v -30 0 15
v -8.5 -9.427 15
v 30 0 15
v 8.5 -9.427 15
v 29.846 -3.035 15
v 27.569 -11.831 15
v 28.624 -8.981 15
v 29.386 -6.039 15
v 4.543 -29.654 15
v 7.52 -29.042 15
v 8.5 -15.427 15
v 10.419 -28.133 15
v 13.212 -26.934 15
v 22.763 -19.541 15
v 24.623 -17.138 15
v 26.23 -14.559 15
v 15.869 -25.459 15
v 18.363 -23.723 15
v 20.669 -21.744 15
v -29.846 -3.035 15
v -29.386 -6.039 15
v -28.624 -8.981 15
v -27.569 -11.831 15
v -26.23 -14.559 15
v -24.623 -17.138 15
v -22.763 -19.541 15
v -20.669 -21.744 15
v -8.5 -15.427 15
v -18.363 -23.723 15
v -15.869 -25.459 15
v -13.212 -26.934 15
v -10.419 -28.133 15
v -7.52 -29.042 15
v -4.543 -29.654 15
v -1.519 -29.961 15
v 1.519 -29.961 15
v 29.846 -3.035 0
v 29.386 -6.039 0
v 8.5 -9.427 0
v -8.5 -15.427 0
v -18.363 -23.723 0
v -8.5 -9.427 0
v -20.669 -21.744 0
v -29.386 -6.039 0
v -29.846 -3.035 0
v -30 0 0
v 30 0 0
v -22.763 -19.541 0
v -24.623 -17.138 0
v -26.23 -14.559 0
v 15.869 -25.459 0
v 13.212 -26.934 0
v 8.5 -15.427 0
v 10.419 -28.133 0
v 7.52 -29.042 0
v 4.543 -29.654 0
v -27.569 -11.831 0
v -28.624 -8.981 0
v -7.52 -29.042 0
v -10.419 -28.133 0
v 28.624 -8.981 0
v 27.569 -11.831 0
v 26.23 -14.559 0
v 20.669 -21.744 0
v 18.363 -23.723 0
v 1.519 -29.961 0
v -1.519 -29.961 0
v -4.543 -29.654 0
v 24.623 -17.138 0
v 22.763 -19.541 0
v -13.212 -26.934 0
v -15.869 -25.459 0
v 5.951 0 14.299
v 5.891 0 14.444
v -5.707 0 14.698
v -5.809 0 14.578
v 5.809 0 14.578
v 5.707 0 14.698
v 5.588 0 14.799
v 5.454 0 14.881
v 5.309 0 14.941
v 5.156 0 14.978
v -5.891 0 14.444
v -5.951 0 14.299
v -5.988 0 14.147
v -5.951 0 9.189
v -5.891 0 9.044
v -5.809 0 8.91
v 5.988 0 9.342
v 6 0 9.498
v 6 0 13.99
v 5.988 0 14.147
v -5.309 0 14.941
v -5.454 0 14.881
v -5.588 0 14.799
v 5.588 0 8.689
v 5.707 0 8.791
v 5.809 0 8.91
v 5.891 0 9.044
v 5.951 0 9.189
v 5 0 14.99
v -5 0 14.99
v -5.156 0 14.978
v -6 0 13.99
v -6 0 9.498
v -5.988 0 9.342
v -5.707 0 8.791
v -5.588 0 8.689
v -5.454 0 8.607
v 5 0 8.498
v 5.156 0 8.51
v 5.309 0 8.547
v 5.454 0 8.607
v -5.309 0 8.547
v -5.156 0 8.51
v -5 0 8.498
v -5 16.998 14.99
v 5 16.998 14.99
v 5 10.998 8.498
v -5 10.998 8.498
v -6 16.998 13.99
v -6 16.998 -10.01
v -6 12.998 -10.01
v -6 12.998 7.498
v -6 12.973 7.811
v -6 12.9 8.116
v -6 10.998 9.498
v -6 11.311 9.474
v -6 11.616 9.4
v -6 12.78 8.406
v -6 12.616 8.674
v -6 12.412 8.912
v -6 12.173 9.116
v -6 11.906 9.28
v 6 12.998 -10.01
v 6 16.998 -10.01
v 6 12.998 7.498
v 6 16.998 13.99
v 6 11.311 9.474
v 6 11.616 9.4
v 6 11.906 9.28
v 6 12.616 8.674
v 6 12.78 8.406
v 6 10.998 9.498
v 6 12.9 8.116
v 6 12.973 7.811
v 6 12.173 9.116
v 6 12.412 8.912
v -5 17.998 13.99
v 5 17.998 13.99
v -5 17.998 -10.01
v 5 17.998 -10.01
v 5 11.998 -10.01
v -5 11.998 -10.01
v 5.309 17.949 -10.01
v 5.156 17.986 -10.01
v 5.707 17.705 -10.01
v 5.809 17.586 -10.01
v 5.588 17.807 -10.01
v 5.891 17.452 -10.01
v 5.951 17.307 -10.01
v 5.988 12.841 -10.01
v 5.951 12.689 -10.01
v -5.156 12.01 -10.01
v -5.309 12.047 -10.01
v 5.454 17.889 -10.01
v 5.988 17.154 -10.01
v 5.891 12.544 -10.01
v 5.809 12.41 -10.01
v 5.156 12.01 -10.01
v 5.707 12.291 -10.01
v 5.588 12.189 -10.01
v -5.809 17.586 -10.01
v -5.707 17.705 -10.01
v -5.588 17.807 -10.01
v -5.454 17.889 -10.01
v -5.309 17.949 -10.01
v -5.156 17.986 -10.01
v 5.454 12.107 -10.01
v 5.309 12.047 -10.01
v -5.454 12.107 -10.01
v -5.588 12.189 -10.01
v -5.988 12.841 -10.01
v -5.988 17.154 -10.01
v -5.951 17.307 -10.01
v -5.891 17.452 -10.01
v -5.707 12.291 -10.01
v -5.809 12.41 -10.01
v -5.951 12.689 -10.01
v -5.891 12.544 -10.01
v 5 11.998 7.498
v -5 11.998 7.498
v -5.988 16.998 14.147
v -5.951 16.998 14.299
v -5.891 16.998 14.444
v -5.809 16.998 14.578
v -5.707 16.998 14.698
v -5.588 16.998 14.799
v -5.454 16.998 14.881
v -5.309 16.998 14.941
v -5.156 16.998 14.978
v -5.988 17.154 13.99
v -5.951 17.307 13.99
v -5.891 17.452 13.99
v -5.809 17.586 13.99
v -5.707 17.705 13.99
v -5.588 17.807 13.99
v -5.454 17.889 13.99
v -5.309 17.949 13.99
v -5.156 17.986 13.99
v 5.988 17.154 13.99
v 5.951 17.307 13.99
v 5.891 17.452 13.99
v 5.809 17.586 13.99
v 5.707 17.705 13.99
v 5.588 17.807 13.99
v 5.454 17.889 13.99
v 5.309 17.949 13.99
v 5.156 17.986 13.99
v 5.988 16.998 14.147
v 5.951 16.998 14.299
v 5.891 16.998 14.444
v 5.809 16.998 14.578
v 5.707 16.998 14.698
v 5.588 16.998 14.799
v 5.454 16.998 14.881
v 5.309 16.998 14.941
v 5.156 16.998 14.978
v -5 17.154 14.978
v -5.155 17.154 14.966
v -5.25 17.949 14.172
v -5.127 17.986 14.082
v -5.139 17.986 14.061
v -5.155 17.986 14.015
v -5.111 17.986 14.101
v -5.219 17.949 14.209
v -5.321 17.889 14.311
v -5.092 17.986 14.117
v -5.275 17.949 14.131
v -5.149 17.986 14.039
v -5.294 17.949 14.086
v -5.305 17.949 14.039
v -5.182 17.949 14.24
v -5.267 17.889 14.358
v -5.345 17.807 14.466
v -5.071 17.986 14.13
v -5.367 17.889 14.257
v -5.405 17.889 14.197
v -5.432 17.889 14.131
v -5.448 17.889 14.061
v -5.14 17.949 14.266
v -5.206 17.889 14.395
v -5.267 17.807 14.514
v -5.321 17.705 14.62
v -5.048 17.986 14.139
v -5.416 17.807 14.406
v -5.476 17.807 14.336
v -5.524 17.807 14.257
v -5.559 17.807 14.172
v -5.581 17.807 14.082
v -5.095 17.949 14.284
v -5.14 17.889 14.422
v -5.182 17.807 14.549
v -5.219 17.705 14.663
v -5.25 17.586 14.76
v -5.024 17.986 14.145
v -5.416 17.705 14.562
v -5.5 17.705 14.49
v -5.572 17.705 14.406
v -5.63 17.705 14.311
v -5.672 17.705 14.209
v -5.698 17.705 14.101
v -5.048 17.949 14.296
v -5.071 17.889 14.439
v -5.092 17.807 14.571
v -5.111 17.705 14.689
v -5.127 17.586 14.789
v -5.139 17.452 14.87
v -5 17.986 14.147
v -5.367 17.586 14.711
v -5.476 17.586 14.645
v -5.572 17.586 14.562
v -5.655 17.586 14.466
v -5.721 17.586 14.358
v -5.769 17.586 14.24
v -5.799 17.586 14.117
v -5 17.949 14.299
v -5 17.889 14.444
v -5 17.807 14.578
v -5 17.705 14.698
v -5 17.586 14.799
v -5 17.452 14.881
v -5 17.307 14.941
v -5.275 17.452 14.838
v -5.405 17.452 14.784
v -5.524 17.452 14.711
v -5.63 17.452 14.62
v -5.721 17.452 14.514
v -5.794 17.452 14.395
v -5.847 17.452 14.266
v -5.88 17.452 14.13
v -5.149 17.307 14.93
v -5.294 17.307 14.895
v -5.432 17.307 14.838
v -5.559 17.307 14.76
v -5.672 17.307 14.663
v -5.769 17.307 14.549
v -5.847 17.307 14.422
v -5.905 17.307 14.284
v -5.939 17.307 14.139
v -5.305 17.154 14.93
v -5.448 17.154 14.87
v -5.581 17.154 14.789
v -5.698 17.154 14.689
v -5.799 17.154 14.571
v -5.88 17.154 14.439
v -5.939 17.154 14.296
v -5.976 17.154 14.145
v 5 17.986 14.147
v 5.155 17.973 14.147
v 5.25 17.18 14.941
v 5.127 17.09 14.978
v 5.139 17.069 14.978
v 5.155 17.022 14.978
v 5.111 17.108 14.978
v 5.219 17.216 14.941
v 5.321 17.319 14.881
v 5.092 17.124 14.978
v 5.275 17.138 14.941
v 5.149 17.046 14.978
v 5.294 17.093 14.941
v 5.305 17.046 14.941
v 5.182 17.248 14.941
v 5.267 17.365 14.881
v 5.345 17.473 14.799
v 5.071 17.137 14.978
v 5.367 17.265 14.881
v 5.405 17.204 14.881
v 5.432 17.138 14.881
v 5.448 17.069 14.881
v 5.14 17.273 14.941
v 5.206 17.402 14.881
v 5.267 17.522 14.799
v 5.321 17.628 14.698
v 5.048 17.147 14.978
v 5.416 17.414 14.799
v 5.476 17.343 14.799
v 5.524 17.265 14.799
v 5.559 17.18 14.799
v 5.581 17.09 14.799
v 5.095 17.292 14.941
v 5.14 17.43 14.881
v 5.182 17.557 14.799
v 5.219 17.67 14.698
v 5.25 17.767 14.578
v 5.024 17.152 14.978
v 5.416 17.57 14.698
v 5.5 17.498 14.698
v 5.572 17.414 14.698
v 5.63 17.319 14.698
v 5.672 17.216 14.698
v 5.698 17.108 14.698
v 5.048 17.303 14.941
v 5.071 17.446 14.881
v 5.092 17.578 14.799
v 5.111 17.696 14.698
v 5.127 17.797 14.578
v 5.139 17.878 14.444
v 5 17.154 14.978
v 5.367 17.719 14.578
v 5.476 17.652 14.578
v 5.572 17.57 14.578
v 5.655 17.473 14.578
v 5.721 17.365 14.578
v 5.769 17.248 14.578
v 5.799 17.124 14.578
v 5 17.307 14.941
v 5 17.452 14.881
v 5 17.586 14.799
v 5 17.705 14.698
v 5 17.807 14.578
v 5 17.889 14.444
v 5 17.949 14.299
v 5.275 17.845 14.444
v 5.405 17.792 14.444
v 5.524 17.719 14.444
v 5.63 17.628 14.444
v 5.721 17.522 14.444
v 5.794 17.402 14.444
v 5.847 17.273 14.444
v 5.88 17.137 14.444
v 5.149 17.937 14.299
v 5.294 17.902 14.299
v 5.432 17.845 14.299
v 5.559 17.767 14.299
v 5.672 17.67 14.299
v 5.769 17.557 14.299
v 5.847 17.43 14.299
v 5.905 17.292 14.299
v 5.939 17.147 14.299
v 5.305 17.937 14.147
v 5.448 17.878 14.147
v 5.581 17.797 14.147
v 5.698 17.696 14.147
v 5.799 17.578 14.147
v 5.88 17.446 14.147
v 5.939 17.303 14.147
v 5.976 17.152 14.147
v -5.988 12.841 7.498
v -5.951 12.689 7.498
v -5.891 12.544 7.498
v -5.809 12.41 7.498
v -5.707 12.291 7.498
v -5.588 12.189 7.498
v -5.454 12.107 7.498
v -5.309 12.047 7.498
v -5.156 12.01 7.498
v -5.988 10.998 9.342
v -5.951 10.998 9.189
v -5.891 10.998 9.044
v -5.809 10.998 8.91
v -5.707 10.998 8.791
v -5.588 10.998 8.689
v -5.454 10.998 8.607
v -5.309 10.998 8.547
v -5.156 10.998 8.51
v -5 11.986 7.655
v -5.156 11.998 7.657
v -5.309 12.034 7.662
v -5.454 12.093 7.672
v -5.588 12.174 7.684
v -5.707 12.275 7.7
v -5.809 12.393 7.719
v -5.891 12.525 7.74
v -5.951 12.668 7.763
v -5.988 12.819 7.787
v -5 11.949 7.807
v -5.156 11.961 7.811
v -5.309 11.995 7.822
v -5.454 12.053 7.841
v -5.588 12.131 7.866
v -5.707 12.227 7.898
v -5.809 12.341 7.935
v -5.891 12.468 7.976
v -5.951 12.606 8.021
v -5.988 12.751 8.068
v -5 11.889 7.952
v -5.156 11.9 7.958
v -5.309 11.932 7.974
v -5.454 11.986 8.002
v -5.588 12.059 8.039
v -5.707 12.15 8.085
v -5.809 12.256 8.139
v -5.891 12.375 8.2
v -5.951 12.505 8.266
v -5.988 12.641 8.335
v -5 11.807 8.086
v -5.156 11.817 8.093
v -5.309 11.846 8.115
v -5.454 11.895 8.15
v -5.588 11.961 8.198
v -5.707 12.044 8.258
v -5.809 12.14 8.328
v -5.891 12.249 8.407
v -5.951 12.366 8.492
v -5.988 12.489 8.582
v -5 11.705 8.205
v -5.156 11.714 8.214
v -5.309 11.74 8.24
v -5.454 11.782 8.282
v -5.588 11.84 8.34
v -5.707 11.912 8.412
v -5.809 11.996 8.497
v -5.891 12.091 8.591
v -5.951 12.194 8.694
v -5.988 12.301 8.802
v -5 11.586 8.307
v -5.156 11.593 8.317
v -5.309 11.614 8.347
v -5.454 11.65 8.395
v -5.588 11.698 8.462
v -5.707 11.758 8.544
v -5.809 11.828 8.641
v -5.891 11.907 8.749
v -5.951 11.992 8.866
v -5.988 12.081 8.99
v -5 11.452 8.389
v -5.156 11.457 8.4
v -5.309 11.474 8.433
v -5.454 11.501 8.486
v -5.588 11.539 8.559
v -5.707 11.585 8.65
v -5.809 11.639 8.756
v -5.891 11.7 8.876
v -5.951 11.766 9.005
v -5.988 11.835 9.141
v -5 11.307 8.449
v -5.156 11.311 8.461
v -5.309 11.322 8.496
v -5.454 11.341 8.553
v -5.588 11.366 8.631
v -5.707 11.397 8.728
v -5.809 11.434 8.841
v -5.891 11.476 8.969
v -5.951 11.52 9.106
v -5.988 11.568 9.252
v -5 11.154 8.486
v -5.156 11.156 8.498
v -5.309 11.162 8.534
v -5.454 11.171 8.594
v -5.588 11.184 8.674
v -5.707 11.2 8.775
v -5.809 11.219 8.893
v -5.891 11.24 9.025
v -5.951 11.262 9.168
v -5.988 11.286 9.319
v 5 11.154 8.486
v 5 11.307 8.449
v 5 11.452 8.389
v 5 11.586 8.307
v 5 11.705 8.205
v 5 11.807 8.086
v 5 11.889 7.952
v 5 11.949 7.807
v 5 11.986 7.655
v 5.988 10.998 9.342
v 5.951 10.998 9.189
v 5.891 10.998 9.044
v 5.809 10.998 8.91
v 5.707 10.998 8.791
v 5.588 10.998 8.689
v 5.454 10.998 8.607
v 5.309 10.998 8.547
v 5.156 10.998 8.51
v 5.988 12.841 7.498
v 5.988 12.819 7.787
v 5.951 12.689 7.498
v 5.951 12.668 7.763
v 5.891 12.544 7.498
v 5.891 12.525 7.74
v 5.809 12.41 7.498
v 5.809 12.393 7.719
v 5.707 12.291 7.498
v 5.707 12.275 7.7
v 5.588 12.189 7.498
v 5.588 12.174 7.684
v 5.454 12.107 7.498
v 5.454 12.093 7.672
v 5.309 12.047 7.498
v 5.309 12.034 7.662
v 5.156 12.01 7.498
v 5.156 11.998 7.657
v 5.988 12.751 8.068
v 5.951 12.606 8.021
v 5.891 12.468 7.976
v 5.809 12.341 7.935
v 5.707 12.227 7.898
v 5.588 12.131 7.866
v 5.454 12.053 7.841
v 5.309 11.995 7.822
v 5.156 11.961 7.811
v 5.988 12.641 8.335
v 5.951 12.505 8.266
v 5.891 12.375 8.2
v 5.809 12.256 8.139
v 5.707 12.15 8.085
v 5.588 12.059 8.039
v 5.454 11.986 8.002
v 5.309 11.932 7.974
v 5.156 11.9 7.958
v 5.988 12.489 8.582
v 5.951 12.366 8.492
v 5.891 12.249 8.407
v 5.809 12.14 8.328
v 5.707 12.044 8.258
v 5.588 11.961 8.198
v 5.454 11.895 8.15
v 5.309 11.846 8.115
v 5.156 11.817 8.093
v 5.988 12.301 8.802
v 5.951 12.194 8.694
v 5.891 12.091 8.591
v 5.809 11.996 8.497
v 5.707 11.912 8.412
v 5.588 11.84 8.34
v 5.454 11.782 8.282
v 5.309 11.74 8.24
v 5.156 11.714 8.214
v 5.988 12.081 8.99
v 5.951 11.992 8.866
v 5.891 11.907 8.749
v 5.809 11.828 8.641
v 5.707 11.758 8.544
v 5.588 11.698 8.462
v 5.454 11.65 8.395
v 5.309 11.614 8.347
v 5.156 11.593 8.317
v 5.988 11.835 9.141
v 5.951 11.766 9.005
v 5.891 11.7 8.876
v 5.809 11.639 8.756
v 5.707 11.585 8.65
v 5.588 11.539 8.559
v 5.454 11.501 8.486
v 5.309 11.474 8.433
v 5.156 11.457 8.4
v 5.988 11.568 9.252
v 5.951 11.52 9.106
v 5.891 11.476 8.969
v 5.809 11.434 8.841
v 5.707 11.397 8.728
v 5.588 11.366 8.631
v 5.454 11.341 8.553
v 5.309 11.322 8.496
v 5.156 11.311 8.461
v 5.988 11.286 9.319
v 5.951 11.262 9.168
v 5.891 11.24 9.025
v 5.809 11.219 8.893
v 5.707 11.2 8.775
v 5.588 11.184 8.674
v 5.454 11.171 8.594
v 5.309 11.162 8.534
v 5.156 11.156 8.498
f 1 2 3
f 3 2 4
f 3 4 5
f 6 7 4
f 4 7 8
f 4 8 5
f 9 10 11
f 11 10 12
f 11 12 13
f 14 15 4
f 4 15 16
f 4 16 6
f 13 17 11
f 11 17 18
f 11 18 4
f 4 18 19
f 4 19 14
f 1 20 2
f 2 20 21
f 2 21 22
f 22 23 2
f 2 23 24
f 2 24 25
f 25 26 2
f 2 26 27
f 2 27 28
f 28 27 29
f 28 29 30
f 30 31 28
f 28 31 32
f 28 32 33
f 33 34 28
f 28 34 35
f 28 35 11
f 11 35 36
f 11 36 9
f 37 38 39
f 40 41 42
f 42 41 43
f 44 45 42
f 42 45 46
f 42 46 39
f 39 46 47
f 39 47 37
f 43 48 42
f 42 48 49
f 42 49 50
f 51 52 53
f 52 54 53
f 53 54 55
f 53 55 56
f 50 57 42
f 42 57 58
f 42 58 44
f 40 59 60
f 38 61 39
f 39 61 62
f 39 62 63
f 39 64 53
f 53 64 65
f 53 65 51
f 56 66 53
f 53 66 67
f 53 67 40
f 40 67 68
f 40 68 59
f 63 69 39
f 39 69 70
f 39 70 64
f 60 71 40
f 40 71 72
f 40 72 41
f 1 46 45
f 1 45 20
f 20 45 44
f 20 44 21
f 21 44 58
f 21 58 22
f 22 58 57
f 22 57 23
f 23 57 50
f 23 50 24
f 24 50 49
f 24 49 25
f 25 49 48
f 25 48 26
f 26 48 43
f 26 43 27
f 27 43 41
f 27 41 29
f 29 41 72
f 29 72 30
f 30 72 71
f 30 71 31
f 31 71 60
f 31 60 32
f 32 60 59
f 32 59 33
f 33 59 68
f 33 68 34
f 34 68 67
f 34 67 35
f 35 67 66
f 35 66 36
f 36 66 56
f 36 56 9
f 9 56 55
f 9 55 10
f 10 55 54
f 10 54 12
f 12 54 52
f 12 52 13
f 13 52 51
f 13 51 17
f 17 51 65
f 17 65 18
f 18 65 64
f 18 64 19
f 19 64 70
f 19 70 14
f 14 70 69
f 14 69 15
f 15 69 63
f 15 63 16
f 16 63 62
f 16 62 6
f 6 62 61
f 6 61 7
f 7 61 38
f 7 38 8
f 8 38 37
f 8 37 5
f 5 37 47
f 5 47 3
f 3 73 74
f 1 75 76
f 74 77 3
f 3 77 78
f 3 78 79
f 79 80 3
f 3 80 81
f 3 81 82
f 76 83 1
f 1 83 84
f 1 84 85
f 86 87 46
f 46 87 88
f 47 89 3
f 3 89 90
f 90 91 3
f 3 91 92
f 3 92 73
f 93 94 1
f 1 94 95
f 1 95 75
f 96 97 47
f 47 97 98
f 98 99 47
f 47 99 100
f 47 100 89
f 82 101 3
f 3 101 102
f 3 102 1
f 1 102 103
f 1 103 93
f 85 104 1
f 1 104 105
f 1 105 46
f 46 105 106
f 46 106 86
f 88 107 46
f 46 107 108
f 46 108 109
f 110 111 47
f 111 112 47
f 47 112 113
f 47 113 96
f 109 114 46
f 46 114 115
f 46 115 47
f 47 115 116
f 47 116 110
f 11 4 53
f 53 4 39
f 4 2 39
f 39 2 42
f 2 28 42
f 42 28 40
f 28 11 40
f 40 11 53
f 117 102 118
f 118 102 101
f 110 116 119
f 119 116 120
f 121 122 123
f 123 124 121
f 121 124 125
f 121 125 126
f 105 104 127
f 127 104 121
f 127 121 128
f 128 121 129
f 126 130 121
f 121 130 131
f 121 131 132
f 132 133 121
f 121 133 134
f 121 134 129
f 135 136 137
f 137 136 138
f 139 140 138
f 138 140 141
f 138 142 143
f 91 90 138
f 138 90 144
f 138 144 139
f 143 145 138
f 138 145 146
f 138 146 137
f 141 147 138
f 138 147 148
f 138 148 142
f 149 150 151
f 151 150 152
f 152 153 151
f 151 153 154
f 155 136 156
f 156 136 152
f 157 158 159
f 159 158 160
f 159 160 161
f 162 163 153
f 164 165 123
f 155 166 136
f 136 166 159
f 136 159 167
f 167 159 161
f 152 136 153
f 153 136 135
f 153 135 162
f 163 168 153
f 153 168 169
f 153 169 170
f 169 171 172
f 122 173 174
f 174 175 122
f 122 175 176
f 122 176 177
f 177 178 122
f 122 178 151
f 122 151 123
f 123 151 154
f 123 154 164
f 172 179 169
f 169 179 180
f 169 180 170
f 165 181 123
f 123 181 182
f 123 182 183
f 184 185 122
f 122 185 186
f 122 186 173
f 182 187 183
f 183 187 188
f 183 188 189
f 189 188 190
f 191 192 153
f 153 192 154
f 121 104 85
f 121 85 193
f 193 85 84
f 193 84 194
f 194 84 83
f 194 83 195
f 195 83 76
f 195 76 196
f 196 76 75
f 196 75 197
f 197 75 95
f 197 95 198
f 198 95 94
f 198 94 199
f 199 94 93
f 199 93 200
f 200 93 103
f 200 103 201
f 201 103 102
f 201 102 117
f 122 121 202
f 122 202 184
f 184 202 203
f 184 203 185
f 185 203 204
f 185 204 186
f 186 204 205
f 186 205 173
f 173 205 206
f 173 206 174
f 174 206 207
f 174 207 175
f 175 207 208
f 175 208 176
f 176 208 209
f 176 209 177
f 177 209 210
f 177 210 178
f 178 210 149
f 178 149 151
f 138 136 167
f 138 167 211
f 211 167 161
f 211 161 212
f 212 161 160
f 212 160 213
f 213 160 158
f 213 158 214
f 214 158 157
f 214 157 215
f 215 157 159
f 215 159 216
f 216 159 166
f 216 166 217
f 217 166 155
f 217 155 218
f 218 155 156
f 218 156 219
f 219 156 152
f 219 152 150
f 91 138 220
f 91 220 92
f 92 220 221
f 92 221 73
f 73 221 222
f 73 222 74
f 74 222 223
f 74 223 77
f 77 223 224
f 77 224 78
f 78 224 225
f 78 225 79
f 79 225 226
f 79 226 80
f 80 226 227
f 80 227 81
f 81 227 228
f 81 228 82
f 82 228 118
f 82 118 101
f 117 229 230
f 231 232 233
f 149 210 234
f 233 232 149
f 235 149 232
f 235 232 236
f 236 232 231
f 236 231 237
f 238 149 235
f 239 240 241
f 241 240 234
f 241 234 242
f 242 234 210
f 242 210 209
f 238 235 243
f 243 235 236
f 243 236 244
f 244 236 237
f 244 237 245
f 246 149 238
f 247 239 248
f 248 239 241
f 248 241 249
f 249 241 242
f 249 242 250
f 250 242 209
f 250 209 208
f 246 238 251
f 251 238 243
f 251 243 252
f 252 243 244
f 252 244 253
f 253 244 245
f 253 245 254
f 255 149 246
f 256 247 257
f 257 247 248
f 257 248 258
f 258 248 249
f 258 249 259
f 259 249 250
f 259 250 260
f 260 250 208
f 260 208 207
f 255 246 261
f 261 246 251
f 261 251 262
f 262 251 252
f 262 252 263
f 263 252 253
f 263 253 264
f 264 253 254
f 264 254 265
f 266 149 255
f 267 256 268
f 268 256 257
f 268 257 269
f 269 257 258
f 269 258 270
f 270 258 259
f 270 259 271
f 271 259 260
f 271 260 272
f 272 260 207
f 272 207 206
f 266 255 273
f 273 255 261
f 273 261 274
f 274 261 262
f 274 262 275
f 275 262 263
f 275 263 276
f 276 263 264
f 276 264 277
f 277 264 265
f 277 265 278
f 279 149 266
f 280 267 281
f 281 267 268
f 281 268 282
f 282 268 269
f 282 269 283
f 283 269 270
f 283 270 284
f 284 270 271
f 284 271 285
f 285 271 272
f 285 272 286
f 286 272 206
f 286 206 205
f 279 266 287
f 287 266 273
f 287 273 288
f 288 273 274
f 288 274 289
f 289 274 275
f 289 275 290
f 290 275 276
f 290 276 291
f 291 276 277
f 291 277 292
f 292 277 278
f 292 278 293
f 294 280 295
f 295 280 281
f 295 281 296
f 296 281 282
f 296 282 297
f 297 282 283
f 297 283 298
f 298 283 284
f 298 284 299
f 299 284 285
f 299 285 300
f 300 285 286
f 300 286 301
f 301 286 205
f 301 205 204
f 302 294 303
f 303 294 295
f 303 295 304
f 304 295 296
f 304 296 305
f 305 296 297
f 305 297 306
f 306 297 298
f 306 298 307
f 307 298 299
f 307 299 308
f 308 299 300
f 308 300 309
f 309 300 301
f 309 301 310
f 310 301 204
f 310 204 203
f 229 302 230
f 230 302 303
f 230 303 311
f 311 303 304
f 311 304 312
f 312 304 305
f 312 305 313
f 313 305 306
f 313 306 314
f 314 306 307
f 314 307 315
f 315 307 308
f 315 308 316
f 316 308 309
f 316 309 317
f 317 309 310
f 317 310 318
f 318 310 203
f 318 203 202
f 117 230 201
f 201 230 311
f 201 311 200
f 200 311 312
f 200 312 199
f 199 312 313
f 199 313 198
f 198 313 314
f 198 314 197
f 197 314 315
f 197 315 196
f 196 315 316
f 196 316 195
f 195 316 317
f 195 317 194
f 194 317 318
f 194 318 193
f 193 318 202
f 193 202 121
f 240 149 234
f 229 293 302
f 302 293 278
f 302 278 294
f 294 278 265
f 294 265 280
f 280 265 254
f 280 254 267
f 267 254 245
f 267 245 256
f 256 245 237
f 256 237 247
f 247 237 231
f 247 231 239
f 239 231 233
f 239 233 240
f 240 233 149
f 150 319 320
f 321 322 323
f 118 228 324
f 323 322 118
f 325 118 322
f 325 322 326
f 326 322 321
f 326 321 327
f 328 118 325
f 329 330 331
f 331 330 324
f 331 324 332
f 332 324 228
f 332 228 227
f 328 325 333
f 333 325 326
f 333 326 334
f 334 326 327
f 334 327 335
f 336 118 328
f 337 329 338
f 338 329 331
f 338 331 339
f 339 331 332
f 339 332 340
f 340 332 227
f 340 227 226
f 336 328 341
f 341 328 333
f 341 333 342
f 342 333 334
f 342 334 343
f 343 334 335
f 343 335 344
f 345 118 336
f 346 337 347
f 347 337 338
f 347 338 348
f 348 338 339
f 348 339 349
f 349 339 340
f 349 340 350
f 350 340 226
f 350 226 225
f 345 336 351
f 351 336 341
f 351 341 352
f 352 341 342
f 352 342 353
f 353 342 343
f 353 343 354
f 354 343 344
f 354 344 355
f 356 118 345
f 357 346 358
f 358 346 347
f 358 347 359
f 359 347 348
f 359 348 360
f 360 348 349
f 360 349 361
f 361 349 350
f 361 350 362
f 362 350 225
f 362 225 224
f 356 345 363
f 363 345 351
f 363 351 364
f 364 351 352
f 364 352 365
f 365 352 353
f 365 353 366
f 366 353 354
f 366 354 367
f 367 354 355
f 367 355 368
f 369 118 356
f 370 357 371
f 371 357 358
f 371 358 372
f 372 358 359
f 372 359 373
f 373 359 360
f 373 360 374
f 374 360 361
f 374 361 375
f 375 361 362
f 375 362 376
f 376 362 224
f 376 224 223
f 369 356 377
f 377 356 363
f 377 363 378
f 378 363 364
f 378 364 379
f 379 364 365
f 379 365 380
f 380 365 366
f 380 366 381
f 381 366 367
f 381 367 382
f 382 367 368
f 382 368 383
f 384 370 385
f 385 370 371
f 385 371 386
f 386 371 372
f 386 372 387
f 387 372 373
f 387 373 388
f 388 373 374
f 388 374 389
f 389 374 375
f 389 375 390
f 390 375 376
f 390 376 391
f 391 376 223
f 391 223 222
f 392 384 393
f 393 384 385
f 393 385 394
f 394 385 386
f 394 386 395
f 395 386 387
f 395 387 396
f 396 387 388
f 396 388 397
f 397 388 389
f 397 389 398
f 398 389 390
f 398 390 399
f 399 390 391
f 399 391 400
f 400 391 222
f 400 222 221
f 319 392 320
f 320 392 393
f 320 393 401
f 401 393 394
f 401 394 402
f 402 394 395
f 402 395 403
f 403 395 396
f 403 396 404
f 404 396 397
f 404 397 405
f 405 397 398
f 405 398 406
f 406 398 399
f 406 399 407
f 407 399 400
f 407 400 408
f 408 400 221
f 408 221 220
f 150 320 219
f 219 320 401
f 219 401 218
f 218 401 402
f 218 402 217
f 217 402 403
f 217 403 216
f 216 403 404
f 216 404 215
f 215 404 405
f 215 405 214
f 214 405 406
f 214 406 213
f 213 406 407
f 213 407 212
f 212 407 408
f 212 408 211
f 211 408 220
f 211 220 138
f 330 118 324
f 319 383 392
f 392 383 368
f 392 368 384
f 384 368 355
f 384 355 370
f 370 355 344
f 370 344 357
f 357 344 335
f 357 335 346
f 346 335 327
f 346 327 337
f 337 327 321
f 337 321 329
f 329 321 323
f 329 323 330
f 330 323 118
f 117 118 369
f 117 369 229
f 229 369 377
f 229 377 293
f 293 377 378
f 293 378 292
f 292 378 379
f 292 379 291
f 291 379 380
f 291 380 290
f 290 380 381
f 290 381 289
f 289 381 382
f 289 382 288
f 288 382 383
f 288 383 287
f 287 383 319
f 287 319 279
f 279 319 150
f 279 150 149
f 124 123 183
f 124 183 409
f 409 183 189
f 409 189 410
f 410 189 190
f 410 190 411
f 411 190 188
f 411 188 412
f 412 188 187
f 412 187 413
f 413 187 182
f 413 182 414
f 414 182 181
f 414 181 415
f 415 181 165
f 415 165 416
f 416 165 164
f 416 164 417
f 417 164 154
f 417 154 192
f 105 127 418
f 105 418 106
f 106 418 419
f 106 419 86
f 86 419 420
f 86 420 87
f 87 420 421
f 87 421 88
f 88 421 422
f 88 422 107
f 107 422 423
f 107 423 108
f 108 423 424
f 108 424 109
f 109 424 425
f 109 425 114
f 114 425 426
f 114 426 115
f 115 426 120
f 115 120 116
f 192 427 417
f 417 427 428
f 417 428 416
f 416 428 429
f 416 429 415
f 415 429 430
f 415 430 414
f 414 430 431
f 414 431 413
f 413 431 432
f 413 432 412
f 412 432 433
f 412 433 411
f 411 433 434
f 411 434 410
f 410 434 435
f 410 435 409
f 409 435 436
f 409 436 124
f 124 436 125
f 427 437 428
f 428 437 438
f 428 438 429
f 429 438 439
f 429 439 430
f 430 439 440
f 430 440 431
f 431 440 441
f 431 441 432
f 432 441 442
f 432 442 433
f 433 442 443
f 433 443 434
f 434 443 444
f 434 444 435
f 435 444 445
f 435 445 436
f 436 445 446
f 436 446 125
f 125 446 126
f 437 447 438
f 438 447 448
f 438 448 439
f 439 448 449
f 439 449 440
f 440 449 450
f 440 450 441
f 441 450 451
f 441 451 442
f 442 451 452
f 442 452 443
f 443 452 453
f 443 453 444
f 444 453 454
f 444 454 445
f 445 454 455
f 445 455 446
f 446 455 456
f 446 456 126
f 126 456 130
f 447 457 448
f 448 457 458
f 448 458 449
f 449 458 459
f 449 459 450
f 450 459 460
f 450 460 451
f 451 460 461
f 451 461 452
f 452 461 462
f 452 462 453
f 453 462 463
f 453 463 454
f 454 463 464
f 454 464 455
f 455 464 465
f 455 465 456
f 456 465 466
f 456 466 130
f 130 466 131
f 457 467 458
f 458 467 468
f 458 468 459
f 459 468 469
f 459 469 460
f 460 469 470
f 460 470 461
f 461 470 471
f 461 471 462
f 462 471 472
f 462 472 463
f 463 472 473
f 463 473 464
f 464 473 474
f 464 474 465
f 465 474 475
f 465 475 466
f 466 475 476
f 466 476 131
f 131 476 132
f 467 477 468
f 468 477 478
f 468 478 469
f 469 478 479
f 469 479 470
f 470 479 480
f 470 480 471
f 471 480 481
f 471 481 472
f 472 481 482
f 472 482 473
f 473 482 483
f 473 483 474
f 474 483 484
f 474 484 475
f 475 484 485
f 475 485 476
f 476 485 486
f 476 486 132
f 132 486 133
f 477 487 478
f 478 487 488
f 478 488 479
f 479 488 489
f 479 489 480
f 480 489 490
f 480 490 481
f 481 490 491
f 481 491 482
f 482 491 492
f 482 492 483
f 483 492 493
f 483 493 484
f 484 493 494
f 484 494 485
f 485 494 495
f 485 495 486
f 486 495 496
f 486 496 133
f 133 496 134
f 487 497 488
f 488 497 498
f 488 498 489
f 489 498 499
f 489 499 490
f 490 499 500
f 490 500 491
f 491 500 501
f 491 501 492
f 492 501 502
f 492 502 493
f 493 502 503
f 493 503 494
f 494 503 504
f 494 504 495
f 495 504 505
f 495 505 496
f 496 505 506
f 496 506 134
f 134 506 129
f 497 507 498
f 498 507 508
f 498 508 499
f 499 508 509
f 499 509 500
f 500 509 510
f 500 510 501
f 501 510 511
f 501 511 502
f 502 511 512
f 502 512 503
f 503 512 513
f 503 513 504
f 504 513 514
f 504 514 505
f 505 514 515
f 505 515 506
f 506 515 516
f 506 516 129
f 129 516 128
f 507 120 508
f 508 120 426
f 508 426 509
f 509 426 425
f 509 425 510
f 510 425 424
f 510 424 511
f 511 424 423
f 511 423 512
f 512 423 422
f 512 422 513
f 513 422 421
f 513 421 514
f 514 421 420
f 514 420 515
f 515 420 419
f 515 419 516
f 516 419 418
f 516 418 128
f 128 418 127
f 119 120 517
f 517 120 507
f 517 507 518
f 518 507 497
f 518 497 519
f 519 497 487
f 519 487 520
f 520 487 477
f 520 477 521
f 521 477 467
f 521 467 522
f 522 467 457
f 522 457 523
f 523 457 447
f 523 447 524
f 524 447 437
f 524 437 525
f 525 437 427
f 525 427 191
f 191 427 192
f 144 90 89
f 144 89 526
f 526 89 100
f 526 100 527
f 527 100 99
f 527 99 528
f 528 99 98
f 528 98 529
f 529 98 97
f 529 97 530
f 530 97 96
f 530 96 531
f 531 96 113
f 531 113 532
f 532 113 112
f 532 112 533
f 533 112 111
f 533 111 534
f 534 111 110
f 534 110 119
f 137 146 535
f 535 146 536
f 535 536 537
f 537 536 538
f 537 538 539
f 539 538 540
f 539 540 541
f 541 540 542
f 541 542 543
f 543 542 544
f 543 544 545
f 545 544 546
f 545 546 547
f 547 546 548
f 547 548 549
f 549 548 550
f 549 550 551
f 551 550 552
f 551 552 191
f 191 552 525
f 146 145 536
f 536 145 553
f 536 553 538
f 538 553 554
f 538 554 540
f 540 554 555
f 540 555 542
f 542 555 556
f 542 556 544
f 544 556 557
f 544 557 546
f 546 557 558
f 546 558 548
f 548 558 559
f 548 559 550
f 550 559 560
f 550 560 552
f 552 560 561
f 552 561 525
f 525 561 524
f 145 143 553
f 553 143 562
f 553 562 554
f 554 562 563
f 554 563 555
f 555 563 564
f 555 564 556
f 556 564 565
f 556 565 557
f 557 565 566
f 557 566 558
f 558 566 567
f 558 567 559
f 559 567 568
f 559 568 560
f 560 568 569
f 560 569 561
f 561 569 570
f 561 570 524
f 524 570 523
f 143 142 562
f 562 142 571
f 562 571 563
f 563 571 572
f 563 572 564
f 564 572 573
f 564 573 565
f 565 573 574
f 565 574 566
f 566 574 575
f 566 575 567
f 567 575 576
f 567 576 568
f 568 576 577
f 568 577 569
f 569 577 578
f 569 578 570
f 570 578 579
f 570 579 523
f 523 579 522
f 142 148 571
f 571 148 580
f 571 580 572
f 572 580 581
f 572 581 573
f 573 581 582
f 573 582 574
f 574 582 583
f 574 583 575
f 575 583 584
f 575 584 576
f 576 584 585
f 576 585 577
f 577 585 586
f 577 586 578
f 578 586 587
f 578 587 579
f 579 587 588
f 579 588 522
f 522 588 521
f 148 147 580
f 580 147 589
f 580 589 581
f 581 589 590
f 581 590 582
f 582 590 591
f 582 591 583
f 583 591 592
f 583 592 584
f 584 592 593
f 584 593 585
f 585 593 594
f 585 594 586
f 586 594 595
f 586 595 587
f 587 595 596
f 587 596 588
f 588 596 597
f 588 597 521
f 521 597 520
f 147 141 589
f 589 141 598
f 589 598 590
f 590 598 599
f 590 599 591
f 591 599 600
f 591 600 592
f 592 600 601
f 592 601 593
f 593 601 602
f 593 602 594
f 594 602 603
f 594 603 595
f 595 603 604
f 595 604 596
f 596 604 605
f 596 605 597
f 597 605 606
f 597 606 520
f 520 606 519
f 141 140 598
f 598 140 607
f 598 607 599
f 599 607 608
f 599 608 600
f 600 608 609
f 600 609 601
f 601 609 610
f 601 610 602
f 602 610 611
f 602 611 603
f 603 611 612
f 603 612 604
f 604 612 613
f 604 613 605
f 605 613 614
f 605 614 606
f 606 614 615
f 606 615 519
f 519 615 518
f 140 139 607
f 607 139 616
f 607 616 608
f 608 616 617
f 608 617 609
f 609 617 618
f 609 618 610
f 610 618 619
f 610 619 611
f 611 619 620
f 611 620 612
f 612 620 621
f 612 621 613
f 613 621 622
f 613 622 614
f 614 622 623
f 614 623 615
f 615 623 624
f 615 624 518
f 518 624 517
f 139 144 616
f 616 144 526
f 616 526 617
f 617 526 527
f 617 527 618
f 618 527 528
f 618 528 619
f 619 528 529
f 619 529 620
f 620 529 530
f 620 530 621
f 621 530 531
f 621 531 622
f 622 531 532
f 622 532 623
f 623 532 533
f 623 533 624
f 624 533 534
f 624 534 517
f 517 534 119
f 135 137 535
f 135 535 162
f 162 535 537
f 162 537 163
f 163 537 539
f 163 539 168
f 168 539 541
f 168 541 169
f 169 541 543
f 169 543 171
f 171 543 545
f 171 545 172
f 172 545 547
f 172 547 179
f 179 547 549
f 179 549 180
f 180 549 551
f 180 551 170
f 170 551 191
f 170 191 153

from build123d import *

# Parameters (mm, degrees)
SKETCH_1_W           = 17
SKETCH_1_H           = 6
EXTRUDE_1_DEPTH      = 15
EXTRUDE_2_DEPTH      = 6
EXTRUDE_2_DEPTH_BACK = 6
FILLET_4_R           = 1
FILLET_5_R           = 1
FILLET_6_R           = 1


with BuildPart() as part:
    # Эскиз1 → Бобышка-Вытянуть1 (new body)
    with BuildSketch(Plane.XY):
        with BuildLine():
            Line((30, 0), (-30, 0))
            ThreePointArc((-30, 0), (0, -30), (30, 0))
        make_face()
        with Locations((0, -12.426630435)):
            Rectangle(SKETCH_1_W, SKETCH_1_H, mode=Mode.SUBTRACT)
    extrude(amount=EXTRUDE_1_DEPTH)

    # Эскиз6 → Бобышка-Вытянуть2 (add, two sides: drawn at the far end of the back side and taken through both)
    with BuildSketch(Plane(origin=(0, 0, 0), x_dir=(0, 0, -1), z_dir=(1, 0, 0)).offset(-EXTRUDE_2_DEPTH_BACK)):
        Polygon((-14.990436671, -0.00212283), (-14.990436671, 17.99787717), (10.009563329, 17.99787717), (10.009563329, 11.99787717), (-8.498173606, 11.99787717), (-8.498173606, -0.00212283), align=None)
    extrude(amount=EXTRUDE_2_DEPTH + EXTRUDE_2_DEPTH_BACK)

    # Скругление4
    fillet_4_edges = [part.edges().sort_by_distance(p)[0] for p in [
        (-6, 8.998938585, 14.990436671),
    ]]
    fillet(fillet_4_edges, radius=FILLET_4_R)

    # Скругление5
    fillet_5_edges = [part.edges().sort_by_distance(p)[0] for p in [
        (6, 8.998938585, 14.990436671),
        (6, 17.99787717, 2.490436671),
        (-6, 17.99787717, 1.990436671),
        (0.5, 17.99787717, 14.990436671),
        (-5.707106781, 17.99787717, 14.697543453),
    ]]
    fillet(fillet_5_edges, radius=FILLET_5_R)

    # Скругление6
    fillet_6_edges = [part.edges().sort_by_distance(p)[0] for p in [
        (-6, 5.998938585, 8.498173606),
        (0, 11.99787717, 8.498173606),
        (6, 5.998938585, 8.498173606),
        (6, 11.99787717, -0.755694861),
        (-6, 11.99787717, -0.755694861),
    ]]
    fillet(fillet_6_edges, radius=FILLET_6_R)


solid = part.part
